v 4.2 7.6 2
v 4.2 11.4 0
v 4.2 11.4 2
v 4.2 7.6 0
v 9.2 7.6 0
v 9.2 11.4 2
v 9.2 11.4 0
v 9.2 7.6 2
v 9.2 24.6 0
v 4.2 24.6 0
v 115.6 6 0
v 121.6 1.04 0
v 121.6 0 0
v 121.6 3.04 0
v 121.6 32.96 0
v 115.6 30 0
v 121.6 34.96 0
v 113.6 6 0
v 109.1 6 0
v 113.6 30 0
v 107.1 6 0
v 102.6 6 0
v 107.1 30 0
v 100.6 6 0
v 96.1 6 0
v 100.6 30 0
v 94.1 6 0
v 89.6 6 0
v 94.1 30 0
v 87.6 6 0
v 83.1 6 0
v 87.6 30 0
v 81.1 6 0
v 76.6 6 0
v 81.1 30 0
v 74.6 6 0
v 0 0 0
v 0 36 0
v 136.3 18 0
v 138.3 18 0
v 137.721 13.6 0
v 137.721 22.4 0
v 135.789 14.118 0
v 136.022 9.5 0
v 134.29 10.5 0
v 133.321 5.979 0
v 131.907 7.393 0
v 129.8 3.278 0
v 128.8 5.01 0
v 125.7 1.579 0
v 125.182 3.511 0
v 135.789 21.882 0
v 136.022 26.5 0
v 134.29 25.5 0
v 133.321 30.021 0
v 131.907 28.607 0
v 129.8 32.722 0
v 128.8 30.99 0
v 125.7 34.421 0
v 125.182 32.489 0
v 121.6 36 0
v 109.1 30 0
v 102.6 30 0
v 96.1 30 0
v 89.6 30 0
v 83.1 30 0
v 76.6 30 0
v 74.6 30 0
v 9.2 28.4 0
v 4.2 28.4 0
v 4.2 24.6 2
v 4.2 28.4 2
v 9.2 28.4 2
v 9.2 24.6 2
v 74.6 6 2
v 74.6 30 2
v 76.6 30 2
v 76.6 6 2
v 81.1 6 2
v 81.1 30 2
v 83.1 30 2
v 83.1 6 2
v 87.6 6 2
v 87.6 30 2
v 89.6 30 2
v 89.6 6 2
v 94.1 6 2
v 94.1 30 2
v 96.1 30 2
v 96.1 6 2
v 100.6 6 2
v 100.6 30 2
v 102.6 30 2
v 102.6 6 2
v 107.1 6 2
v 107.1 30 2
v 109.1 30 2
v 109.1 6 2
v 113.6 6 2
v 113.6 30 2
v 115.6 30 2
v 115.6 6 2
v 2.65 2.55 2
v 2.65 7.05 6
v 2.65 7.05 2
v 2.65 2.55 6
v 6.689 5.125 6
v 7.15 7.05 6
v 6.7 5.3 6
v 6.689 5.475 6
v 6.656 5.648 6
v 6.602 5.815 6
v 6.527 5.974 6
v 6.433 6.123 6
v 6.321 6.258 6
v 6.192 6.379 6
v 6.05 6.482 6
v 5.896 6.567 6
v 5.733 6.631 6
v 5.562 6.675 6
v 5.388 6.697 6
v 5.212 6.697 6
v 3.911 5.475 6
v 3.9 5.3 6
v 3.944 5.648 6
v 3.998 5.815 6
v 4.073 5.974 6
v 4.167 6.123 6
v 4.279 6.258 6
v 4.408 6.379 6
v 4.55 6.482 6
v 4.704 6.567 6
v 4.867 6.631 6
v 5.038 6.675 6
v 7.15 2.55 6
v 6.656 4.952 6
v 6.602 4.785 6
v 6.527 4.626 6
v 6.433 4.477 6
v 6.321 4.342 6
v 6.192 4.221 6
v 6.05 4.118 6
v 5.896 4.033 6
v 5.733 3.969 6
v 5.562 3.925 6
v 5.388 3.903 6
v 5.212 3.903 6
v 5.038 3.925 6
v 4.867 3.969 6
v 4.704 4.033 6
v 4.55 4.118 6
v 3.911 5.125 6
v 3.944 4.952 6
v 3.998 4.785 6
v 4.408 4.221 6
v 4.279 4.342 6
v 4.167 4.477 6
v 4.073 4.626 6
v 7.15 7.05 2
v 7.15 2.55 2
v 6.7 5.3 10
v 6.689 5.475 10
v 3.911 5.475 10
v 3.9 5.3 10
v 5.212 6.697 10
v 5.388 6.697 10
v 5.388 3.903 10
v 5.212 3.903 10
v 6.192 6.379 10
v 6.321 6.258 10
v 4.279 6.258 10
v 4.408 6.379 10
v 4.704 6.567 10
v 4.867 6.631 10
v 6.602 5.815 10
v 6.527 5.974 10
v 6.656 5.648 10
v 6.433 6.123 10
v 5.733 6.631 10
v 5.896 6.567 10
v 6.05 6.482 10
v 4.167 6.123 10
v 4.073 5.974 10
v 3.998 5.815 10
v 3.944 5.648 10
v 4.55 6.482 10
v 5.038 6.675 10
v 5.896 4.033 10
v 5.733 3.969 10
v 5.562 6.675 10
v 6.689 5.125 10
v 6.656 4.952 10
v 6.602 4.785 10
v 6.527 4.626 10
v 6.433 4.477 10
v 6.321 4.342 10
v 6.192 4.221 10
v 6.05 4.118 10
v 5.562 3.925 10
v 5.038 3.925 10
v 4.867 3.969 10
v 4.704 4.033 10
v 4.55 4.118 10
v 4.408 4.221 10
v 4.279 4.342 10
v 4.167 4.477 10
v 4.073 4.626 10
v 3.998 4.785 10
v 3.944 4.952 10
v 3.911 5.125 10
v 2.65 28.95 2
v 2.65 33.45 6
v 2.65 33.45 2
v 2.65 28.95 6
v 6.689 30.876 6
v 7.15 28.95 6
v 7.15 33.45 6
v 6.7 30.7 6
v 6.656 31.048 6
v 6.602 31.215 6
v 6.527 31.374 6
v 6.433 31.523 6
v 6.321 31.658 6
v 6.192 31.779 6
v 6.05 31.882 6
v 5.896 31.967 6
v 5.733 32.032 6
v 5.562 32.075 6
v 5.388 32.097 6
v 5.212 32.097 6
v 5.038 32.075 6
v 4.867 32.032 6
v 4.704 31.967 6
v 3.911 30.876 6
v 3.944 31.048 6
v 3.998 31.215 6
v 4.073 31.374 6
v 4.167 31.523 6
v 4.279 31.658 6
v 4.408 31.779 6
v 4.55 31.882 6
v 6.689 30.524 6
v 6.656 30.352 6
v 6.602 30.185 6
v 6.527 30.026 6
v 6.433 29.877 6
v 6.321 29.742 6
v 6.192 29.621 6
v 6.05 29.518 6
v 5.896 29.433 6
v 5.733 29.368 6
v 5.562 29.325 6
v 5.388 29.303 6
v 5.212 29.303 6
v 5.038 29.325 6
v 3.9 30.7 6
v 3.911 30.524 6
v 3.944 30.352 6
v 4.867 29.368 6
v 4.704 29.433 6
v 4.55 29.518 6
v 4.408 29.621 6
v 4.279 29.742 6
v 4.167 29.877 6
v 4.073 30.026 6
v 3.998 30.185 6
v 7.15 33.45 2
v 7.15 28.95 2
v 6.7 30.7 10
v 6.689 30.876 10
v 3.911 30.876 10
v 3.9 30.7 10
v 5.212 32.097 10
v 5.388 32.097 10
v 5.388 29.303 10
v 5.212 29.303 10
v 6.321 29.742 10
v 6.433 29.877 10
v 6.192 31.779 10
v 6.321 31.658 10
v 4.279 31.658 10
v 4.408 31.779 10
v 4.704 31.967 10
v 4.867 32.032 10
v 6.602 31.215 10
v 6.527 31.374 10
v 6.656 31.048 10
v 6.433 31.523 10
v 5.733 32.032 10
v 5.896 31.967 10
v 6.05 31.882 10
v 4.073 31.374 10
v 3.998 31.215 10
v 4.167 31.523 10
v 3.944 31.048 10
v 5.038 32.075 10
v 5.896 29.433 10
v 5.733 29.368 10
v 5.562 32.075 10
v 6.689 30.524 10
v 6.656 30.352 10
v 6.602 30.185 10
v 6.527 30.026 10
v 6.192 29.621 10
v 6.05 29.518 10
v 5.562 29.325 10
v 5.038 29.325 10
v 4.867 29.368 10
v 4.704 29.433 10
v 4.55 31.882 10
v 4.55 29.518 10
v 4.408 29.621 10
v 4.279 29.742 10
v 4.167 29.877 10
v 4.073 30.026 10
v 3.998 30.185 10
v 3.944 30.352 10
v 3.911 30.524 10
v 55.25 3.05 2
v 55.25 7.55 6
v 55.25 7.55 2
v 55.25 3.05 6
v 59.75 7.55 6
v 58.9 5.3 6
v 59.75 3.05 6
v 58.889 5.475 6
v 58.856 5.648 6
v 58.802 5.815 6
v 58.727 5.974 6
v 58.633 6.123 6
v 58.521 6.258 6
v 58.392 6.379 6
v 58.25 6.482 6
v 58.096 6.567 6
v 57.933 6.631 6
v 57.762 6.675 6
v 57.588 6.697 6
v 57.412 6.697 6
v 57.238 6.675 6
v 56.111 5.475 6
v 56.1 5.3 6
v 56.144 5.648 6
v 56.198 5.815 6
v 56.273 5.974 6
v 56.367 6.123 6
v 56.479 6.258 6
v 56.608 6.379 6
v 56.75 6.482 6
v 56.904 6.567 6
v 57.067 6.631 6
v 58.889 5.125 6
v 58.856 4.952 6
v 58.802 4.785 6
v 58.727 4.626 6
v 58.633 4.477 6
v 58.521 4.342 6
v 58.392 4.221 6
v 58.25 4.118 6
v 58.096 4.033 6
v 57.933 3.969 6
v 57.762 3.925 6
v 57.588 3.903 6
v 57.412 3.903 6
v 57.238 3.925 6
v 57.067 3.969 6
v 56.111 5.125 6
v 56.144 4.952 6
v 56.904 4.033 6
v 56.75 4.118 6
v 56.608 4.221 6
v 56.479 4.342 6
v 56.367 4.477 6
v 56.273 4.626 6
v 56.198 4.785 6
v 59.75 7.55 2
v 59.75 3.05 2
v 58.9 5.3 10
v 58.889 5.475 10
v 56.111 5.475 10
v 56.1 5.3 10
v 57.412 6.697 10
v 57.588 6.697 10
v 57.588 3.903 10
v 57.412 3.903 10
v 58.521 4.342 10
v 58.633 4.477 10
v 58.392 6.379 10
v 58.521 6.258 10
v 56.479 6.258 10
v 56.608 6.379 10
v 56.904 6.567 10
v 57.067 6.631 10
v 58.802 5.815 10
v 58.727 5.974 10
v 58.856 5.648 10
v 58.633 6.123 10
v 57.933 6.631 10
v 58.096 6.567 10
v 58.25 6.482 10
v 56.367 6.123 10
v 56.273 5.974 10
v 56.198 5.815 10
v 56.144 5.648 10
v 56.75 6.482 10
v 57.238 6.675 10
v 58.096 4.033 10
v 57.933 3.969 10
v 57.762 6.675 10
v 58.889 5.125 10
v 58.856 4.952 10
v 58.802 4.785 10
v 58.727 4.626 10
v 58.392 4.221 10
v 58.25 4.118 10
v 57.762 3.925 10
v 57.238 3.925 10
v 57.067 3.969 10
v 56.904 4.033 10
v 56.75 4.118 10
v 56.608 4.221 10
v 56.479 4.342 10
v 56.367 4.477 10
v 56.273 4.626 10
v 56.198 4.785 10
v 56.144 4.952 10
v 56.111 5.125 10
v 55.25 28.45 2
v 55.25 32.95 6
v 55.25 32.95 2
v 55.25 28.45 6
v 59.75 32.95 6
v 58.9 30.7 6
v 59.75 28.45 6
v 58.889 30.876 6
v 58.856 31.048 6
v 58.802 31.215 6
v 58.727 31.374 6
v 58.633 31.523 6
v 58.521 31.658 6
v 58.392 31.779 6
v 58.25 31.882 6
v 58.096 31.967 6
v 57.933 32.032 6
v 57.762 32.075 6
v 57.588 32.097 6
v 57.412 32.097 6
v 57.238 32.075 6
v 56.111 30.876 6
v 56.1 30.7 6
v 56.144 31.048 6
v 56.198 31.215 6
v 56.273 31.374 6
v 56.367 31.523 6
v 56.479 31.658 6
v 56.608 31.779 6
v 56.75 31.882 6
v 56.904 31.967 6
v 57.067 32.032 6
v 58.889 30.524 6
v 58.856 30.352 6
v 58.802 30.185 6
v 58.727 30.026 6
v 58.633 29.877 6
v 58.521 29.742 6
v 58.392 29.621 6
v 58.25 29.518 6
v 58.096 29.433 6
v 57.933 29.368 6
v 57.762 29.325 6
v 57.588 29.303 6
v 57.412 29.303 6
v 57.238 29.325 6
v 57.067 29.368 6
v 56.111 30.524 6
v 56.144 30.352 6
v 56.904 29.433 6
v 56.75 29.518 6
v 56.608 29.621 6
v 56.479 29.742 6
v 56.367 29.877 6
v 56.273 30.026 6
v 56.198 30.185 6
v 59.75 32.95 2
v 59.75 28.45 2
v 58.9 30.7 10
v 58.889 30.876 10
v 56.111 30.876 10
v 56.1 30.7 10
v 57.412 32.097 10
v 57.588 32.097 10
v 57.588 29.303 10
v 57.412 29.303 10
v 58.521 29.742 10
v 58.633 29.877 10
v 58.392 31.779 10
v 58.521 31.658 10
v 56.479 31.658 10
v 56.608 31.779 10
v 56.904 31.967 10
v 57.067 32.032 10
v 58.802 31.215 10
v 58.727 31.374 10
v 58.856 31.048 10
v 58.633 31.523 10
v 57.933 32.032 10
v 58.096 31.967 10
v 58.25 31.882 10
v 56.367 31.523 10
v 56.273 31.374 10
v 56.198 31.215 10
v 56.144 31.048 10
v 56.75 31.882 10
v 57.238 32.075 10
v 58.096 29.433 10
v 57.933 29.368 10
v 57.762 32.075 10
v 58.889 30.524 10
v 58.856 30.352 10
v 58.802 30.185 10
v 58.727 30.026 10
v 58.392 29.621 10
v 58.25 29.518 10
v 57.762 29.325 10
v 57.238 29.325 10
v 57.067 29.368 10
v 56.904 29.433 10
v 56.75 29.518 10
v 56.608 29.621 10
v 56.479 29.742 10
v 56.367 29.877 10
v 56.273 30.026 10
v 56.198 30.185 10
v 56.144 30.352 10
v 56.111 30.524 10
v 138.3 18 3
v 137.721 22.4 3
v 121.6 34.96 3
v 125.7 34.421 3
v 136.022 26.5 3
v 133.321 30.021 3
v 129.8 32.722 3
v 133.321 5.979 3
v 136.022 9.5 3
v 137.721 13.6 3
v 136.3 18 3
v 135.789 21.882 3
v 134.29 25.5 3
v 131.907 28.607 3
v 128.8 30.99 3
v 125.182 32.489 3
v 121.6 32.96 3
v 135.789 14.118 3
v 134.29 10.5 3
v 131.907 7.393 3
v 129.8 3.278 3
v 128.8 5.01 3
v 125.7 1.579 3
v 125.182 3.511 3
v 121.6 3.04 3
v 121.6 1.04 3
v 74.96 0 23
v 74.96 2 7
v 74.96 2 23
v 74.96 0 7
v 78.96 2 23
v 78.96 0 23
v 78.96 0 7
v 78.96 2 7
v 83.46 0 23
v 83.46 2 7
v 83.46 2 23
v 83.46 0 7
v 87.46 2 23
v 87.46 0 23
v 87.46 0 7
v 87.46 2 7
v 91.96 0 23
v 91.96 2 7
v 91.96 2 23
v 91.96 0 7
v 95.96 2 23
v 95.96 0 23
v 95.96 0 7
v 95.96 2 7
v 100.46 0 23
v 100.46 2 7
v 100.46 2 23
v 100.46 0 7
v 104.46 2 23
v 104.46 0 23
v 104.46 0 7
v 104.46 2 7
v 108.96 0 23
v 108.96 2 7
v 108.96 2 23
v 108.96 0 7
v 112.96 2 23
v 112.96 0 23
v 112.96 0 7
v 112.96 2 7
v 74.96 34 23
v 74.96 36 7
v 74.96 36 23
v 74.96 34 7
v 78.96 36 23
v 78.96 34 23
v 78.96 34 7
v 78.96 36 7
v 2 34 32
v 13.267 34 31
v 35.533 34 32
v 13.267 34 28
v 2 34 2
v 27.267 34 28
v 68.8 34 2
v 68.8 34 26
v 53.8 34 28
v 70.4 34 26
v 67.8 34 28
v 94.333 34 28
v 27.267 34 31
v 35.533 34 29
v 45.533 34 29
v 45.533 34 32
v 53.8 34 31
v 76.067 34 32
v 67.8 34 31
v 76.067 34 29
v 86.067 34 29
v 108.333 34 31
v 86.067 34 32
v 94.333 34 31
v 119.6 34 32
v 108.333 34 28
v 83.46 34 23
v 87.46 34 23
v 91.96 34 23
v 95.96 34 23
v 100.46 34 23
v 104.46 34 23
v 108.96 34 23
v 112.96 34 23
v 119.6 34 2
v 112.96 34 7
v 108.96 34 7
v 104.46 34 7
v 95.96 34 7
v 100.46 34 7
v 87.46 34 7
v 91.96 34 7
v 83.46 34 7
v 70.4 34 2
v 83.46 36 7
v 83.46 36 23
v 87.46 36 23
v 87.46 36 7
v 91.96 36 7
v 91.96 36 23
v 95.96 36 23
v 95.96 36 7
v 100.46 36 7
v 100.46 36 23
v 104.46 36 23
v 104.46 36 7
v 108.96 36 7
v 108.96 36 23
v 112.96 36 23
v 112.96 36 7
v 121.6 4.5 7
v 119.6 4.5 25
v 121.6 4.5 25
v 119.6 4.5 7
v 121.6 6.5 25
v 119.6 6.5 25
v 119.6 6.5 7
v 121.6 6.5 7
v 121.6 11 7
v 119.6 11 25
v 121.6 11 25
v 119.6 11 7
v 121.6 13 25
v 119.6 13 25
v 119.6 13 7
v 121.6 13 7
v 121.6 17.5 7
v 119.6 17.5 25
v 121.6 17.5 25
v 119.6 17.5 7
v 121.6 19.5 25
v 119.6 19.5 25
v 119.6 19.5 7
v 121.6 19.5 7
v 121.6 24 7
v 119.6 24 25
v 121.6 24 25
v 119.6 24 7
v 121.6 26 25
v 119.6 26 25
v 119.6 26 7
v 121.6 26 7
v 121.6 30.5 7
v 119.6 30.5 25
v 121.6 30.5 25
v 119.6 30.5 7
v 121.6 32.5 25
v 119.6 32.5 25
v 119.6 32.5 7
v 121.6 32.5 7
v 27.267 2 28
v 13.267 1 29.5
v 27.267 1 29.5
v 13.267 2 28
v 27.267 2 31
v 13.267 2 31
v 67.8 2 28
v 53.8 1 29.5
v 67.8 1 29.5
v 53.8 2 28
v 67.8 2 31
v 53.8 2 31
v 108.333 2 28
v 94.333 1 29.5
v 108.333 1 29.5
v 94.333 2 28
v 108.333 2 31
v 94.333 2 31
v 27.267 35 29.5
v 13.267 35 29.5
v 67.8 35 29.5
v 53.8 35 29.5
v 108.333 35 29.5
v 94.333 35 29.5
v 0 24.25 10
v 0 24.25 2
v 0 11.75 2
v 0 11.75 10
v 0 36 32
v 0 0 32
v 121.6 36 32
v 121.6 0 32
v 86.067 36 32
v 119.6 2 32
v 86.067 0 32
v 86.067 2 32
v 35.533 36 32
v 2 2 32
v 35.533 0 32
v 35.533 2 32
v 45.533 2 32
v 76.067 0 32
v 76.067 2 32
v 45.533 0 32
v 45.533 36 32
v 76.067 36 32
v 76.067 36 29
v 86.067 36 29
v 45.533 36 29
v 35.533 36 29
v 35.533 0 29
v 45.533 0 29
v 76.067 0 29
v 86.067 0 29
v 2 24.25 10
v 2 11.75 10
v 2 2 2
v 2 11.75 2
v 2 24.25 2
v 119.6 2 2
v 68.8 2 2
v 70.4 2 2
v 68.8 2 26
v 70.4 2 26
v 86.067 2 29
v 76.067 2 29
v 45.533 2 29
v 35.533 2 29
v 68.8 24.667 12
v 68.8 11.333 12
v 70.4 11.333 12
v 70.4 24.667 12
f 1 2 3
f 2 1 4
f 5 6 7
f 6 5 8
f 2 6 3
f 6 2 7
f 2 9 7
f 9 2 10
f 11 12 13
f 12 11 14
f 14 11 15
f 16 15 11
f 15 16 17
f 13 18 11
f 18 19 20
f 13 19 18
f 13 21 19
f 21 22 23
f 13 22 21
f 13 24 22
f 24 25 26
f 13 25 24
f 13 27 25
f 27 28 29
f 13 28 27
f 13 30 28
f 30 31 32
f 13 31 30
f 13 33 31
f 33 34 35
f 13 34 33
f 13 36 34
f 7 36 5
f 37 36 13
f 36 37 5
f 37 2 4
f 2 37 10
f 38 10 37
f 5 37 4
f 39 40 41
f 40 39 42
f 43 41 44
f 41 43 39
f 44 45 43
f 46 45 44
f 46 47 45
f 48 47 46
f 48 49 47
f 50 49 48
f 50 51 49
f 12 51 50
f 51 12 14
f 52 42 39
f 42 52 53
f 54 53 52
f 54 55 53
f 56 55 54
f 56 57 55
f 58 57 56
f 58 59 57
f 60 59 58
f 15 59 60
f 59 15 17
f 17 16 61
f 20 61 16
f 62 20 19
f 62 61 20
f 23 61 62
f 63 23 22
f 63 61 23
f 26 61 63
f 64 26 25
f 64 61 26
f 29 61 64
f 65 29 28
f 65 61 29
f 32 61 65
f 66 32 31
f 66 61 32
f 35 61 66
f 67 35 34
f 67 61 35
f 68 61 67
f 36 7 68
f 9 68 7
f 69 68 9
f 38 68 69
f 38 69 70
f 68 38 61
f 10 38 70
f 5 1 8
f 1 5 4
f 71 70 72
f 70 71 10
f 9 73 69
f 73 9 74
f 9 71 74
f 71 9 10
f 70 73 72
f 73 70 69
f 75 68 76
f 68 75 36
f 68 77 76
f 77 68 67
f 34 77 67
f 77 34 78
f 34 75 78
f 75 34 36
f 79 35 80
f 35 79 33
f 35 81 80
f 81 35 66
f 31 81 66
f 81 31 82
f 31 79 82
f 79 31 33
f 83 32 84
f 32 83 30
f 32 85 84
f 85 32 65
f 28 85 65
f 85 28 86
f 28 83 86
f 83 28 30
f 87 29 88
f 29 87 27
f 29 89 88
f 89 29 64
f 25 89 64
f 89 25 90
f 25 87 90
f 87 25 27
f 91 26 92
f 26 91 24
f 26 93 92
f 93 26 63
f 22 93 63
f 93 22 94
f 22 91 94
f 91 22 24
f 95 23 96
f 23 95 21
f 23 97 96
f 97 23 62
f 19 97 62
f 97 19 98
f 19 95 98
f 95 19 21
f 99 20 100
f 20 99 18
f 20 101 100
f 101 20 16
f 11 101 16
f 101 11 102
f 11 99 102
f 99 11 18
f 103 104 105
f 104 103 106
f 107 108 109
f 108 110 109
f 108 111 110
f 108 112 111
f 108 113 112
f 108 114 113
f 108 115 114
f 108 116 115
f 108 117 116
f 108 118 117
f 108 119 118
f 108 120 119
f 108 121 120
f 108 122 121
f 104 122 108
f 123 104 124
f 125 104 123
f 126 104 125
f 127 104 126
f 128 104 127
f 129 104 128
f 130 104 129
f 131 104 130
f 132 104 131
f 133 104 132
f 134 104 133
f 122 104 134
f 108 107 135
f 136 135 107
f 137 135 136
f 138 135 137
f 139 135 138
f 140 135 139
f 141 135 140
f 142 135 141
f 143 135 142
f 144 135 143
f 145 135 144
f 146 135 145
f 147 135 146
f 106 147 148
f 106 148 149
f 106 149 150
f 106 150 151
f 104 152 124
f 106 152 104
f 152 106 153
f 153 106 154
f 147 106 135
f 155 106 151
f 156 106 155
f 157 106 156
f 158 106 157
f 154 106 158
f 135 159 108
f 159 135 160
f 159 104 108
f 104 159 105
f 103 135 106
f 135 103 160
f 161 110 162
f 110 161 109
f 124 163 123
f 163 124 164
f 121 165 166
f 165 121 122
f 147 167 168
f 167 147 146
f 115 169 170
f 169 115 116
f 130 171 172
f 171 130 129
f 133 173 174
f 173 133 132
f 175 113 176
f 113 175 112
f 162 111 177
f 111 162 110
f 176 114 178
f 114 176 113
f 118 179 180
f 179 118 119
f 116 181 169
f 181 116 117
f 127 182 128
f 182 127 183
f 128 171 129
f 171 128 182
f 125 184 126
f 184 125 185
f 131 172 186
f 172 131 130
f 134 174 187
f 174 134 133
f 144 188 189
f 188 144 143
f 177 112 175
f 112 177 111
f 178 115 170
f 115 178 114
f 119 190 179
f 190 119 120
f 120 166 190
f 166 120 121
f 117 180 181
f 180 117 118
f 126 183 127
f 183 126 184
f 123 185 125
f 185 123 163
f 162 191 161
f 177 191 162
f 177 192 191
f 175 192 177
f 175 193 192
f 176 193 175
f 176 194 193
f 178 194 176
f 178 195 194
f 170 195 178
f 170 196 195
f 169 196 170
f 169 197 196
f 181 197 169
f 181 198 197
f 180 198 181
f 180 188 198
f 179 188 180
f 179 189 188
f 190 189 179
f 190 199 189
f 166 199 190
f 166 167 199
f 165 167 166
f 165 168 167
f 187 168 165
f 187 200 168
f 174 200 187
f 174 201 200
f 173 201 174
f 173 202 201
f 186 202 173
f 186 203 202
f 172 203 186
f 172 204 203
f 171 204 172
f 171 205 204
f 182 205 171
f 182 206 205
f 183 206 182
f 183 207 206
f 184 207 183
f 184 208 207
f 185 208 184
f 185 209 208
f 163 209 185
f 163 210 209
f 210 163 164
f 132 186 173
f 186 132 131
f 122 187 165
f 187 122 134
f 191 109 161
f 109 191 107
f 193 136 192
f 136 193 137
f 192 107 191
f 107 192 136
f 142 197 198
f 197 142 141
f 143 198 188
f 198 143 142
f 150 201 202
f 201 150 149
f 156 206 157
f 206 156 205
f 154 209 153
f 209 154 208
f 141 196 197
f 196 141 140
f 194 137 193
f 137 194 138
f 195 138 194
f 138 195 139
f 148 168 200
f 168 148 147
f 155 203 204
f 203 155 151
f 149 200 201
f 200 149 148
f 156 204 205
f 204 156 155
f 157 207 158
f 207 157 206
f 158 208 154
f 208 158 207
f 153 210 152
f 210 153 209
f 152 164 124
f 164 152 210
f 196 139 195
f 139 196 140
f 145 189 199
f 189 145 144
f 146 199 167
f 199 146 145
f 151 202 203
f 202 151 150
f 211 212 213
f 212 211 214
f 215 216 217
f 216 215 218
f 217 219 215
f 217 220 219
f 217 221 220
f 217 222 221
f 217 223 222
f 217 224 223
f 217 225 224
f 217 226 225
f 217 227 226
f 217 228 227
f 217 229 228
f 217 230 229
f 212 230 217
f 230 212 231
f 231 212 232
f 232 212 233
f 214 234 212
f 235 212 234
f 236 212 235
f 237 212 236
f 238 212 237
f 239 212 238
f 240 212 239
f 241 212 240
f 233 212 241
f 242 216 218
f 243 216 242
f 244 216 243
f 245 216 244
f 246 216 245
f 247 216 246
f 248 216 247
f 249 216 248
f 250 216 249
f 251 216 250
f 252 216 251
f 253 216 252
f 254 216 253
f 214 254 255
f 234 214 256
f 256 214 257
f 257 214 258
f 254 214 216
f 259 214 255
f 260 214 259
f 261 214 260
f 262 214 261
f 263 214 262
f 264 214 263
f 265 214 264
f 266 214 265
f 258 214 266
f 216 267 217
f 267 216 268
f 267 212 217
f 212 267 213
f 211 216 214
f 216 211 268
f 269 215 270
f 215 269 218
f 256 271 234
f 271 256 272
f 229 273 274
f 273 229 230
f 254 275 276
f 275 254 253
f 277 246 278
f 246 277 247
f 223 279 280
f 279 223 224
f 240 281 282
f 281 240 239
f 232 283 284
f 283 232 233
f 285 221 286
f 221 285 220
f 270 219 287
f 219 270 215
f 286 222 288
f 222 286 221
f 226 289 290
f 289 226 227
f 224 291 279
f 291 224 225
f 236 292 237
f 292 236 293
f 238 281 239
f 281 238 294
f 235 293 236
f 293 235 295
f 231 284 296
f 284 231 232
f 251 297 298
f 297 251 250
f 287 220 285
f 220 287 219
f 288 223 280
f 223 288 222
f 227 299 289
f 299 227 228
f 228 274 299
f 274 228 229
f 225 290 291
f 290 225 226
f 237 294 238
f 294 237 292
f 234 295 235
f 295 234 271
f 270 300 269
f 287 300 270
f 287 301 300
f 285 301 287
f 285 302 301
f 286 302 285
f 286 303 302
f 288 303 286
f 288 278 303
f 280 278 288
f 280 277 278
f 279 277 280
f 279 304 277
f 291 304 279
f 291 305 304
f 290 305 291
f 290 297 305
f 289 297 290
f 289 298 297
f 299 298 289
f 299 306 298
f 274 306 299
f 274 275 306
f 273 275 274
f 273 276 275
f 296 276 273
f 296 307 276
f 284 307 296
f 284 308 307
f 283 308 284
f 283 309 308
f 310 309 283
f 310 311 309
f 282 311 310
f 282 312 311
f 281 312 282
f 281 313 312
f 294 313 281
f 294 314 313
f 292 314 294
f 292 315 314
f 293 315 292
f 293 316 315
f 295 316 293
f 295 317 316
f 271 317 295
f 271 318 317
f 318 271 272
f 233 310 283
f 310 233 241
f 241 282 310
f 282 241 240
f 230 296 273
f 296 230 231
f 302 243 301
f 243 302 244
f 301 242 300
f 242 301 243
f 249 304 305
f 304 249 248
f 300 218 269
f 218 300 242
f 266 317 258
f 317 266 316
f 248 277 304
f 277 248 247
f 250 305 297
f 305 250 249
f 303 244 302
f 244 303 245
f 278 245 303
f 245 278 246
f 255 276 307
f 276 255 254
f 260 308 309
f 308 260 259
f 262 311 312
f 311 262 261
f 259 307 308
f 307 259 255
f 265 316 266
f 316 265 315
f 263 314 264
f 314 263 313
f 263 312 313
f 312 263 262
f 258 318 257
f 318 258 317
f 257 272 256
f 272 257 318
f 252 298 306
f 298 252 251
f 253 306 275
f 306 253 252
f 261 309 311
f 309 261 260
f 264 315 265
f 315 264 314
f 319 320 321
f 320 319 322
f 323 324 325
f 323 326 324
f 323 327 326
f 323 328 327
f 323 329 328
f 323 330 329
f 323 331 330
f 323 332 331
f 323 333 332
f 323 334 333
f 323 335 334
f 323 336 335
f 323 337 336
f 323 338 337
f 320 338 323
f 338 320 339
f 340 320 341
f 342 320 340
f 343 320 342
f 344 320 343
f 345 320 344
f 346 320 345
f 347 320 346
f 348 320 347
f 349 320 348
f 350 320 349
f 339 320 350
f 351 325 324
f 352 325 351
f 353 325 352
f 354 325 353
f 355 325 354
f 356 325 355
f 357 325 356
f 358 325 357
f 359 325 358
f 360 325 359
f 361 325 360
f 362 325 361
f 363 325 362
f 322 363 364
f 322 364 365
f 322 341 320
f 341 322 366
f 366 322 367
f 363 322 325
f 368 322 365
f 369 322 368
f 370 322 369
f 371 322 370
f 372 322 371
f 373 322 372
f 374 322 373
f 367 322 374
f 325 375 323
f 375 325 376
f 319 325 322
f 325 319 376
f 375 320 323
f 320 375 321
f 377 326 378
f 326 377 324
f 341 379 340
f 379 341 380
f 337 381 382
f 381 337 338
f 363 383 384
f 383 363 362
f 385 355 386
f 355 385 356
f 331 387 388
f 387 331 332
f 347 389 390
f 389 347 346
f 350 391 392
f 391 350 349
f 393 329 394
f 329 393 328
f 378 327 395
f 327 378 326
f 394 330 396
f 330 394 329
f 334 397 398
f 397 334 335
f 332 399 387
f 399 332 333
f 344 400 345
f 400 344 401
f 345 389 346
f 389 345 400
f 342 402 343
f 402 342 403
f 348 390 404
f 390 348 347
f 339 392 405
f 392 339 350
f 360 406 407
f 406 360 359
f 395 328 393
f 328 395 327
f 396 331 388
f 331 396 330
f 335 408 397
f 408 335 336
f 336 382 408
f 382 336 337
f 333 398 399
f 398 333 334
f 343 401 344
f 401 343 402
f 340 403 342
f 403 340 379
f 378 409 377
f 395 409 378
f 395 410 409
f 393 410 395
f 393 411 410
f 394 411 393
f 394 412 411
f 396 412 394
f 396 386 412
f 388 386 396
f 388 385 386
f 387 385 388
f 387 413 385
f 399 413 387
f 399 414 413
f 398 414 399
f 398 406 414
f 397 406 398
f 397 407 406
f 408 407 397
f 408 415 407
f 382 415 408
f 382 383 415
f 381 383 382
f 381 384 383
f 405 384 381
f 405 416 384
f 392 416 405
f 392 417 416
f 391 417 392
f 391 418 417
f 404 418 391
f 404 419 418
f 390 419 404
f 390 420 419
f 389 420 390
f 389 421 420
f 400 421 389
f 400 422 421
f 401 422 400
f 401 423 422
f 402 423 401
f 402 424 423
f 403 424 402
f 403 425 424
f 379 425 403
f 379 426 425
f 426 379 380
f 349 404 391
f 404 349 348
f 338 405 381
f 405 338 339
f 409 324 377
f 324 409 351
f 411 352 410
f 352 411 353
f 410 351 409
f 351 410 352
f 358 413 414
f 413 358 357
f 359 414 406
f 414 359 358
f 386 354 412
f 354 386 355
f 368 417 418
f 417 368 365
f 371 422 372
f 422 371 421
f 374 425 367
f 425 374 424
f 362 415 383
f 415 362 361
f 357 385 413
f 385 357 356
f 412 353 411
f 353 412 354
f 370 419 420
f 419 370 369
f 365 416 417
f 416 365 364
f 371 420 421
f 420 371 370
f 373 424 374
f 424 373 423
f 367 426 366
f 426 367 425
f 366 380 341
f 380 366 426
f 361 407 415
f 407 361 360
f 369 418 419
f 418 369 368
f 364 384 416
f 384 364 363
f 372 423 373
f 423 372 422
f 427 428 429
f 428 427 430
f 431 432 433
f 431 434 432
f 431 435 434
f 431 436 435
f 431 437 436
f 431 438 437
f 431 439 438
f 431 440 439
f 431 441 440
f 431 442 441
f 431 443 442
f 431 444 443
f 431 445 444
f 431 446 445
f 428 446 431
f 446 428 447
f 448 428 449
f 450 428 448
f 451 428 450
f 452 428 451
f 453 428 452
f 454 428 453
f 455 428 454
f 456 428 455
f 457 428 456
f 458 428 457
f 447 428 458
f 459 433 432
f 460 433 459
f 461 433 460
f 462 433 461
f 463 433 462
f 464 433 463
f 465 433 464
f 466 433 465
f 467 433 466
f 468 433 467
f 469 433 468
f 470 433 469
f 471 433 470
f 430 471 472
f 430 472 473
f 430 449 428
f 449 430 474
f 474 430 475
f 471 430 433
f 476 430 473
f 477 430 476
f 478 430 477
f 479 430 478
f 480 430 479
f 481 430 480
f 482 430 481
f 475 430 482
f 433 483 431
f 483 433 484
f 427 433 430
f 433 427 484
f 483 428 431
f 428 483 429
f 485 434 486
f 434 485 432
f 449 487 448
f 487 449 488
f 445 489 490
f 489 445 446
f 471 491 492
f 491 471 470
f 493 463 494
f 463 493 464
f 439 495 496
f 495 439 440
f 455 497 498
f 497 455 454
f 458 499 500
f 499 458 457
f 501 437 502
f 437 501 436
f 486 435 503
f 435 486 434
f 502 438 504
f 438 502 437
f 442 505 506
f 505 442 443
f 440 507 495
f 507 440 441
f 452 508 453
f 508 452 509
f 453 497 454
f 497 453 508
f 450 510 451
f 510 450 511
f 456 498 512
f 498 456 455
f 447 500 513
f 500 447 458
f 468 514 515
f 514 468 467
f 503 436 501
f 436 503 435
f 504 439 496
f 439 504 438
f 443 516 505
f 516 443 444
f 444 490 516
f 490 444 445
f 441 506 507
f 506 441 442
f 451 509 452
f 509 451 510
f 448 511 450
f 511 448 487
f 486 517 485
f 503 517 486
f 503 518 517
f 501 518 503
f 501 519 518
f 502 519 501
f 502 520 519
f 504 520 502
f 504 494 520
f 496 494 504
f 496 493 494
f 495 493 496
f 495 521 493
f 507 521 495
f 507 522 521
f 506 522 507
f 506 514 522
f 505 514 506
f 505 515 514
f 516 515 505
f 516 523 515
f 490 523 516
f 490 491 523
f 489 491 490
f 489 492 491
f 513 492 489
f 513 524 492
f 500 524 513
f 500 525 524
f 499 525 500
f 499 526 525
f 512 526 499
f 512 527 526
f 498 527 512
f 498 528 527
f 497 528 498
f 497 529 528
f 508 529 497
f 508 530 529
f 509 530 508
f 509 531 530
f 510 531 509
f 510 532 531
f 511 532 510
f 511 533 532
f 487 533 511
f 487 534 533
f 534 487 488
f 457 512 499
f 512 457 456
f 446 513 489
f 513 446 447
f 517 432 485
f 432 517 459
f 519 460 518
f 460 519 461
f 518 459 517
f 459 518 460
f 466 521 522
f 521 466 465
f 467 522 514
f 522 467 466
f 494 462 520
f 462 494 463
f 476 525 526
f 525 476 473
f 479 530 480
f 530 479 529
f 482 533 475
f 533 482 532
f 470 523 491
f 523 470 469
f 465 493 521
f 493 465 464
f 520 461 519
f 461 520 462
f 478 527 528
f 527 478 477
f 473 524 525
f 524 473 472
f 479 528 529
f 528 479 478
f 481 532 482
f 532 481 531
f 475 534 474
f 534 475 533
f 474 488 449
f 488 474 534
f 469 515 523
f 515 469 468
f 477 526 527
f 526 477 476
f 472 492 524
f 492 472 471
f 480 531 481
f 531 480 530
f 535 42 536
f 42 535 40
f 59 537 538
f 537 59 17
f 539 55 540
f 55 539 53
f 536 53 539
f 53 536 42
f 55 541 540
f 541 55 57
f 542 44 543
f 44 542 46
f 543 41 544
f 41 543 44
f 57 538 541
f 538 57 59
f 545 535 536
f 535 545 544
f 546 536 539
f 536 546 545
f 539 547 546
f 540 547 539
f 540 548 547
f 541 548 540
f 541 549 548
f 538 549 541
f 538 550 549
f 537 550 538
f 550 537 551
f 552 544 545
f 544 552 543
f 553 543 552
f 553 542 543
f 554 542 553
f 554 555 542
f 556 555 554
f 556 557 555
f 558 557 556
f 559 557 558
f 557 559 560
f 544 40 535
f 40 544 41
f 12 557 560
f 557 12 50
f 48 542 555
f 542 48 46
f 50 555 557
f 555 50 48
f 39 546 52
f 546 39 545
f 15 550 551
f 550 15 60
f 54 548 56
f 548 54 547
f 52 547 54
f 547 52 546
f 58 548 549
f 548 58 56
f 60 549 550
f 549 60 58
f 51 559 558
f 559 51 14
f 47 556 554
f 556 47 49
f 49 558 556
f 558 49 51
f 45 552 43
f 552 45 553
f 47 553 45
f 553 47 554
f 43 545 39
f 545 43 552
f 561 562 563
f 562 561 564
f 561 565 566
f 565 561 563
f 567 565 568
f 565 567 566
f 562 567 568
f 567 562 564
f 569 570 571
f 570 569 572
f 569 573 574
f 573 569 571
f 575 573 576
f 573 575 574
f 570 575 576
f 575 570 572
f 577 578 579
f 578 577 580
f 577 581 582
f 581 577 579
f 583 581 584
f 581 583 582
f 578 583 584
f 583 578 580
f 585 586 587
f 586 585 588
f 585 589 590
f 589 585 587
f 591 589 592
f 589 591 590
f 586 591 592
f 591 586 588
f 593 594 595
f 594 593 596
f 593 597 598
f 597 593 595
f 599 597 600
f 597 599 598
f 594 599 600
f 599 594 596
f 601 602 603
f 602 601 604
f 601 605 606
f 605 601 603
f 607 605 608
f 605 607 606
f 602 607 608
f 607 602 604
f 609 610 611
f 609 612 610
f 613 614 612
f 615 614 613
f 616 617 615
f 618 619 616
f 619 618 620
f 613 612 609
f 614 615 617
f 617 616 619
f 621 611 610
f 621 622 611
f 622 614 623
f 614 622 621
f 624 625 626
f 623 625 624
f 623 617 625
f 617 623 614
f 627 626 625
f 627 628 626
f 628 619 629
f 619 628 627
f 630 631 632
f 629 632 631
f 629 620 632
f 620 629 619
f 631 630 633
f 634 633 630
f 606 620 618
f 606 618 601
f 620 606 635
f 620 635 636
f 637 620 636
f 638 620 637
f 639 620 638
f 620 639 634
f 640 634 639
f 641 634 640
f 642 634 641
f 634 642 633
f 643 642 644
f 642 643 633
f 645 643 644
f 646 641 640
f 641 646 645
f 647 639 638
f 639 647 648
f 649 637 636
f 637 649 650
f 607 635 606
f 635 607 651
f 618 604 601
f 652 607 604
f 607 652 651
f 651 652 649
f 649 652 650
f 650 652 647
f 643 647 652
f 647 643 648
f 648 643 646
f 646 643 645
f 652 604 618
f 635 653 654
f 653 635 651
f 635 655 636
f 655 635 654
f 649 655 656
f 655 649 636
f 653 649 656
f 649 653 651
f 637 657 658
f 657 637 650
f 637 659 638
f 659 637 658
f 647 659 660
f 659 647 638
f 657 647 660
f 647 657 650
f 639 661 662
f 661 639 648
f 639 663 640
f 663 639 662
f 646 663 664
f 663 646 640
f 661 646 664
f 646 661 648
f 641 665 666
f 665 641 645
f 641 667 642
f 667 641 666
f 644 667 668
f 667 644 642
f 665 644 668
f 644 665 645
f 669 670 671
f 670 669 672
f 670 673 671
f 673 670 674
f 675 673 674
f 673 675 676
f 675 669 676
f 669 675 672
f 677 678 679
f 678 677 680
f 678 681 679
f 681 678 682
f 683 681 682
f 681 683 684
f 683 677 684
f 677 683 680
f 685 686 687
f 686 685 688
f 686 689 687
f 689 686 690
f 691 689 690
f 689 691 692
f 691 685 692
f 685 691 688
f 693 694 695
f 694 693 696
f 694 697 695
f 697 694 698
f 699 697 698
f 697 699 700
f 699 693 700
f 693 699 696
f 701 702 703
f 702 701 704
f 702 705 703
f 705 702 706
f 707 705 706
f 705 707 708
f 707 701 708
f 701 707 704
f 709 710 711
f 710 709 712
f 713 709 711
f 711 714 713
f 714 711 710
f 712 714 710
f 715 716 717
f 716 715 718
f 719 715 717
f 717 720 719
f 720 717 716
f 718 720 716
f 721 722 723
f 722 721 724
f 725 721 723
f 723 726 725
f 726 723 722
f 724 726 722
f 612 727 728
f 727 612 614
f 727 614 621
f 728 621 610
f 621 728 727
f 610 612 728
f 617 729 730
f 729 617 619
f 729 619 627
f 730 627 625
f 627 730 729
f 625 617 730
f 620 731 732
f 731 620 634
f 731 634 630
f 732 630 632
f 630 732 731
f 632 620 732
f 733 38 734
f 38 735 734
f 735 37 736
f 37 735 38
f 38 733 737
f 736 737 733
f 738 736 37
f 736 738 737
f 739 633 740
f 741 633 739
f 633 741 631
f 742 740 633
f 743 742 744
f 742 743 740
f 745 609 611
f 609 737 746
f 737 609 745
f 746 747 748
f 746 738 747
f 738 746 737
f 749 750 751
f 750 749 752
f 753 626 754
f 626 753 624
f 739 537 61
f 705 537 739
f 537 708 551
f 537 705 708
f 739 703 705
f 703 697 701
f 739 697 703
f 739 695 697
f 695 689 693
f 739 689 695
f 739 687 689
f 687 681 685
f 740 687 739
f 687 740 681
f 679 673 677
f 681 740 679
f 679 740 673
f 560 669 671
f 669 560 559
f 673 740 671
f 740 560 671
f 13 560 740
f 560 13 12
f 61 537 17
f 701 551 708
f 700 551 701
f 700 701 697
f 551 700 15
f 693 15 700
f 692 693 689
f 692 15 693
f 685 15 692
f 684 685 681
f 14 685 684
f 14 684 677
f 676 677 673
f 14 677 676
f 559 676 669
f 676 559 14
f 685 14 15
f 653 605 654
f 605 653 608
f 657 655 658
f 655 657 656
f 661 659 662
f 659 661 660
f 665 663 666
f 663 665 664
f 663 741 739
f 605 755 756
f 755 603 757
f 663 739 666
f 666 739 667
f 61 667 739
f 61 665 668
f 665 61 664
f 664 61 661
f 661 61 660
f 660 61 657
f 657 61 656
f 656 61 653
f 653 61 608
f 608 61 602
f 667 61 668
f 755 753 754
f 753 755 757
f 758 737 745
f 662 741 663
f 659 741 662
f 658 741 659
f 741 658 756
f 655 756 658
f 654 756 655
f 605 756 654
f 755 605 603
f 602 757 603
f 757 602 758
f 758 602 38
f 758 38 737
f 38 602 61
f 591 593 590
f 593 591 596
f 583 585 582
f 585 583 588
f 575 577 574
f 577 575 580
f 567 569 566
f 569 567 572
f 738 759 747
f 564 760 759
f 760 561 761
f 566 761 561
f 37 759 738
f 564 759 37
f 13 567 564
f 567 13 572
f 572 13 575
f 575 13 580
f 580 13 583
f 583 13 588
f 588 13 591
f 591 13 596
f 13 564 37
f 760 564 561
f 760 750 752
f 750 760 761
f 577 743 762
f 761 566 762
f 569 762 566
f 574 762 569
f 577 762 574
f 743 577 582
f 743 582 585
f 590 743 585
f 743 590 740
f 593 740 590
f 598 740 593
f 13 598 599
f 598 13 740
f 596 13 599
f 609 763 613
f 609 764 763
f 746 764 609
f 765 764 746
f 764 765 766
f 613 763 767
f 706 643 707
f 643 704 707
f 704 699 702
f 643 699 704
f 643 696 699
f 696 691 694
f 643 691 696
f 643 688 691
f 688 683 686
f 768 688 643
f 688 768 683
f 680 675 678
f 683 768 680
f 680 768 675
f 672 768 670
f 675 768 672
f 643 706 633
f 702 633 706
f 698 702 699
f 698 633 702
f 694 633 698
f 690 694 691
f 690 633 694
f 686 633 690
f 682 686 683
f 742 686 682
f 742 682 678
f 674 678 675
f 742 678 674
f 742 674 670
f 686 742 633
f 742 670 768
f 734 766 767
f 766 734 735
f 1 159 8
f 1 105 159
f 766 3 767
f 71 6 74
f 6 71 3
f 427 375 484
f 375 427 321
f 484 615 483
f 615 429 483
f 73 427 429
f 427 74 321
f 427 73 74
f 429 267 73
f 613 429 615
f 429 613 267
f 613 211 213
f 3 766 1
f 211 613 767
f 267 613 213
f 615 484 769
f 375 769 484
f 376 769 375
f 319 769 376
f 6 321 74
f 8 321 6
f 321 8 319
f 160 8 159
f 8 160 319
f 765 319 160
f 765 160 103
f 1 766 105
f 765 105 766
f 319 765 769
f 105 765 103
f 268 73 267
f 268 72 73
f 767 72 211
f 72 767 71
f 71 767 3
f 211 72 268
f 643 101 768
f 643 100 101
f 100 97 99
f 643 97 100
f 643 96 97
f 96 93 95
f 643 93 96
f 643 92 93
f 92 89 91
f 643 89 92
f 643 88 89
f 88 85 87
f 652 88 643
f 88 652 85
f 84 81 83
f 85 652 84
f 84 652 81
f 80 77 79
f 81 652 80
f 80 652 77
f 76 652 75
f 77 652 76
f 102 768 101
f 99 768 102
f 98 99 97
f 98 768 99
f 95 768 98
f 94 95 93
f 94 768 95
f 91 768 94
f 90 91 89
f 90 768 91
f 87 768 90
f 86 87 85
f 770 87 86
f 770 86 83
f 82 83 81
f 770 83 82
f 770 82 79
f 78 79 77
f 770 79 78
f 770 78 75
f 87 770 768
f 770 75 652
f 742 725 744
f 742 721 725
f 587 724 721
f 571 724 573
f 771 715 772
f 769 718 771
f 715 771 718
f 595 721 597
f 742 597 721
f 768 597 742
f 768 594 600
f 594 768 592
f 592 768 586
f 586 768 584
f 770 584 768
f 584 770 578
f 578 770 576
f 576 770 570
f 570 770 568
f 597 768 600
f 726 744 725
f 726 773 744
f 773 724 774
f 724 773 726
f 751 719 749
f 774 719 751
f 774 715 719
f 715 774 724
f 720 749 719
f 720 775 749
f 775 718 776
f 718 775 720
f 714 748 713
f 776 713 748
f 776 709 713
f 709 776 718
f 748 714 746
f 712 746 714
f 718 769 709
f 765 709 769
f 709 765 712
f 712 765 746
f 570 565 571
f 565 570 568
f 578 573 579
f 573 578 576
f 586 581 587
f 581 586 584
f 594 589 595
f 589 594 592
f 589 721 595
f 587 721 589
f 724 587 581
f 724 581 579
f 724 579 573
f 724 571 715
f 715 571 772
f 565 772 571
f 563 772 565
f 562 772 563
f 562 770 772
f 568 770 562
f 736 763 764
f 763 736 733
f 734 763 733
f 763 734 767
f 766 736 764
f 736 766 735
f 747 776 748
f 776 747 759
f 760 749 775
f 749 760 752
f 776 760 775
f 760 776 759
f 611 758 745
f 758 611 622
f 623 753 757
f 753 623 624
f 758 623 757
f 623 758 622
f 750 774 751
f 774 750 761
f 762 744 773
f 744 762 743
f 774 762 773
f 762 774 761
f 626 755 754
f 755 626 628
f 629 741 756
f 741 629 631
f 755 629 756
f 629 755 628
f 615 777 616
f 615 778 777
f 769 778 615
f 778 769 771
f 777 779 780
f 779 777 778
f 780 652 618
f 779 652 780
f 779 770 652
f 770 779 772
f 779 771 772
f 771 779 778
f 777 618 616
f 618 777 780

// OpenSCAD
// Case for NodeMCU v3 with enough vertical space to use dupont cables, and long enough to reduce ESP heat getting to temperature sensor


// 57.8mm for the board, doubled for sensor space
inner_length_param = 57.8;

inner_width_param = 31.0;

inner_height = 30;

// 4mm to allow for RF shield and soldered headers. Used to hold up the board by the edges
floor_to_pcb_margin = 4;
pcb_wall_margin = 0.5; //margin from the wall to the PCB edge - does result in USB port being slightly recessed

bottom_thickness = 2.0;

wall_thickness = 2.0;

inner_wall_thickness = 1.6;
inner_wall_height = 10;

//Height with margin for cable
usb_height = 7.5;

//Width with margin for cable
usb_width = 12.5;


//Corner posts
corner_post_protrusion_height = 4;
//corner_post_outer_radius = 3;
corner_post_inner_radius = 1.4;
corner_post_pcb_radius = 1.5; //M3 hole?
//used for center of support/holding posts
//edge of protruding post from x wall
corner_post_x_from_wall = 1.3;
//edge of protruding post from y wall
corner_post_y_from_wall = 1.3;


//Snapfit hole values
//snapfit_hole_width = 12;
//snapfit_hole_thickness = 6;
//snapfit_hole_height = 3;
//snapfit_hole_offset = 4; //4mm from top

//Values for snap fit mechanism
triangle_mount_base = 3;
triangle_mount_length = 14;
triangle_mount_dist_from_top = 1;


//CALCULATED VALUES
//add margin so board is not pressed tight
inner_length = inner_length_param + pcb_wall_margin*2;
inner_width = inner_width_param + pcb_wall_margin*2;

//add wall thickness
inner_length_full = inner_length*2;
length_full = inner_length_full+wall_thickness*2;

width_full = inner_width+wall_thickness*2;

height_full = bottom_thickness+inner_height;

// overall case
translate([0, 0, 0]) union()
{
    //generate empty box with cutouts
    difference()
    {
        cube([length_full, width_full, height_full], 0);
        
        // main cutout
        translate([wall_thickness, wall_thickness, bottom_thickness]) cube([inner_length_full, inner_width, inner_height+1]);
        
        // USB cutout, placed in the center starting at floor height
        translate([-0.5, width_full/2 - usb_width/2, bottom_thickness]) cube([wall_thickness*3,  usb_width, usb_height+0.5]);
        
        //button holes
        generate_button_holes();
        
        //vent holes
        generate_rectangular_vent_holes();
        
        //inner snap fit holes
        translate([0,0,height_full-triangle_mount_dist_from_top-triangle_mount_base]) generate_snapfit_holes(3, triangle_mount_length);
    translate([0,width_full,height_full-triangle_mount_dist_from_top-triangle_mount_base]) mirror([0,1,0]) generate_snapfit_holes(3, triangle_mount_length);
        
        //holes for more easily removing the snapfit lid
        translate([length_full/6*2 - 5,0,height_full-3]) cube([10, wall_thickness*2,3]);    
        translate([length_full/6*2 - 5,width_full-wall_thickness,height_full-3]) cube([10, wall_thickness*2, 3]);
        translate([length_full/6*4 - 5,0,height_full-3]) cube([10, wall_thickness*2,3]);    
        translate([length_full/6*4 - 5,width_full-wall_thickness,height_full-3]) cube([10, wall_thickness*2, 3]);
        
        
    }
   
    
    //corner posts
    generate_posts();
    
    //wall seperating nodemcu and sensor areas
    generate_inner_wall();
    
    //hook
    translate([length_full-0.3, width_full/2, 0]) generate_hook();
    
}



//larger radius, smaller radius, transition height, total height
module retaining_cylinder(r, h)
{
    $fn = 50;
    //cylinder(trh, ro, ro, false); 
    //translate([-ro, -ro, 0]) cube([ro*2, ro*2, trh]);
    cylinder(h, r, r, false);
}

//square support ledge
module support_ledge()
{
    //doubled to get diameter, and then +50% to get a suitable overhang
    edge_length = 2*corner_post_pcb_radius*1.5;
    //echo("edge_length of support: ");
    //echo(edge_length);
    //translated so it is centered with the cylinder
    translate([-edge_length/2, -edge_length/2, 0]) cube([edge_length, edge_length, bottom_thickness+floor_to_pcb_margin]);
}

module corner_post()
{
   // support_post(corner_post_outer_radius, corner_post_inner_radius, bottom_thickness+floor_to_pcb_margin, bottom_thickness+floor_to_pcb_margin+5);
    retaining_cylinder(corner_post_inner_radius, bottom_thickness+floor_to_pcb_margin+corner_post_protrusion_height);
}

module generate_posts()
{   
 //offset from y axis and PCB hole to hole distance
 x_offset = wall_thickness + corner_post_x_from_wall + corner_post_pcb_radius + pcb_wall_margin;
 y_offset = corner_post_pcb_radius + wall_thickness + corner_post_y_from_wall + pcb_wall_margin;
 x_cross = inner_length - 2*corner_post_x_from_wall - 2*corner_post_pcb_radius - 2*pcb_wall_margin;
 y_cross = inner_width - 2*corner_post_y_from_wall - 2*corner_post_pcb_radius - 2*pcb_wall_margin;
    
    
//The bottom square supports are shifted to nestle them in the corner
//bottom right
 translate([x_offset, y_offset, 0]) union()
 {
    translate([-0.4, -0.5, 0]) support_ledge();
    corner_post();
 }
    
//bottom left
 translate([x_offset, y_offset+y_cross, 0]) union()
 {
    translate([-0.4, 0.5, 0]) support_ledge();
    corner_post();   
 }

//top right
 translate([x_offset + x_cross, y_offset, 0]) union()
 {
    support_ledge();
    corner_post();    
 }

//top left
 translate([x_offset + x_cross, y_offset + y_cross, 0]) union()
 {
    support_ledge();
    corner_post();      
 }

}

module generate_inner_wall()
{
   triangle_length = inner_width / 3;
   triangle_height = height_full - triangle_mount_dist_from_top - triangle_mount_base - inner_wall_height - bottom_thickness;
    
   translate([inner_length+10, wall_thickness, 0]) union()
   {   
    //lower rectangular portion 
    cube([inner_wall_thickness, inner_width+0.4, inner_wall_height+bottom_thickness]);
       
    //triangular support on left and  right
    //y axis wall
    translate([inner_wall_thickness, triangle_length, inner_wall_height]) rotate([0, 0, 180]) prism(inner_wall_thickness, triangle_length, triangle_height);
       
    //far y wall
    translate([0, inner_width-triangle_length, inner_wall_height]) rotate([0, 0, 0]) prism(inner_wall_thickness, triangle_length, triangle_height);
       
   }
}

//6 1cm holes, 3 on each side
//module generate_snapfit_holes()
//{
//    
//    hole_width = snapfit_hole_width;
//    hole_thickness = snapfit_hole_thickness;
//    hole_height = snapfit_hole_height;
//    hole_offset = snapfit_hole_offset;
//    
//    //put holes at 10, 45, 90%
//    hole_y_offset = -1*hole_thickness/2;
//    base_x_offset = wall_thickness + 0.10*inner_length_full;
//    
//    hole_z_offset = height_full - hole_height - hole_offset; //4mm from top
//    
//    //along y axis
//    gen_hole_line();
//    //along far y wall
//    translate([0, width_full, 0]) gen_hole_line();
//    
//    
//    module gen_hole_line()
//    {
//        translate([base_x_offset, hole_y_offset, hole_z_offset]) cube([hole_width, hole_thickness, hole_height]); 
//        translate([base_x_offset + inner_length_full*0.35, hole_y_offset, hole_z_offset]) cube([hole_width, hole_thickness, hole_height]);
//        translate([base_x_offset + inner_length_full*0.7, hole_y_offset, hole_z_offset]) cube([hole_width, hole_thickness, hole_height]);
//    }
//    
//}

module generate_button_holes()
{
    button_hole_x = 5;
    button_hole_y = 3.8;
    
    //distance from PCB edge to button along width
    button_distance_from_edge_y = 5.6;
    button_distance_from_edge_x = 2.2;
    
    //RST button
    //subtract half of cube width to center it
    translate([wall_thickness+button_distance_from_edge_x, wall_thickness + button_distance_from_edge_y, 0]) cube([button_hole_x, button_hole_y, bottom_thickness*1.5]);
    
    //Flash button
    translate([wall_thickness+button_distance_from_edge_x, width_full-wall_thickness-button_distance_from_edge_y - button_hole_y, 0]) cube([button_hole_x, button_hole_y, bottom_thickness*1.5]);
    
}

module generate_rectangular_vent_holes()
{
    //closer wall
    translate([length_full * 3/5 + 2, -2 , bottom_thickness+5]) generate_vent_line(5, 16, 4, 5, 4.5);
    
    //far wall
    translate([length_full * 3/5 + 2, width_full-2, bottom_thickness+5]) generate_vent_line(5, 16, 4, 5, 4.5);
    
    //far wall
    translate([length_full+2, (width_full - total_vent_line_length(6, 2, 3))/2, bottom_thickness+5]) rotate([0,0,90]) generate_vent_line(6, 18, 2, 5, 4.5);
    
    //bottom of sensor bay
    translate([length_full - total_vent_line_length(8, 2, 3) - 10, (width_full-24)/2, bottom_thickness+1]) rotate([-90,0,0]) generate_vent_line(7, 24, 2, 5, 4.5);
    
    
    module generate_vent_line(count, height, width, thickness, spacing)
    {
        function xpos(n,wi,sp) = n*wi + n*sp;
        
        //generate the specified size holes at the given spacing
        for(i = [0:1:count-1])
        {            
            //echo("xpos:");
            //echo(xpos(i,width,spacing));
            translate([xpos(i,width,spacing), 0, 0]) gen_hole();  
        }
        
        module gen_hole()
        {
            cube([width, thickness, height]);
        }
    }
    
    //calculate total length from the left of the first vent hole to the right of the last
    function total_vent_line_length(count, width, spacing) = 
       count*(width+spacing) - spacing;
    
}

//put hook at sensor end
module generate_hook()
{
    hook_outer_radius = 17;
    hook_inner_radius = 15;
    hook_height = 3;
    
    difference()
    {
        cylinder(hook_height, hook_outer_radius, hook_outer_radius, $fn=24);
        
        cylinder(hook_height, hook_inner_radius, hook_inner_radius, $fn=24);
        translate([-2*hook_outer_radius, -hook_outer_radius, 0]) cube([hook_outer_radius*2, hook_outer_radius*2, hook_height]);
        
    }
}

module generate_snapfit_holes(count, length)
{
    interval = length_full / 2 / count;
    
    //left side
    for(i = [0:count-1])
    {
        translate([2*i*interval + interval, width_full/2, 0]) snapfit_hole();
    }
    
    module snapfit_hole()
    {
        
        translate([0,-width_full/2+wall_thickness, 0]) triangle_mount(triangle_mount_base, wall_thickness/2, length);
    }
    
}

//from https://en.wikibooks.org/wiki/OpenSCAD_User_Manual/Primitive_Solids#polyhedron
//makes 3D triangles
module prism(l, w, h){
   polyhedron(
           points=[[0,0,0], [l,0,0], [l,w,0], [0,w,0], [0,w,h], [l,w,h]],
           faces=[[0,1,2,3],[5,4,3,2],[0,4,5,1],[0,3,4],[5,2,1]]
           );
  
   }
   
   
//from https://en.wikibooks.org/wiki/OpenSCAD_User_Manual/Primitive_Solids#polyhedron
//makes 3D triangles
module prism_isos(l, w, h){
   polyhedron(
           points=[[0,0,0], [l,0,0], [l,w,0], [0,w,0], [0,w/2,h], [l,w/2,h]],
           faces=[[0,1,2,3],[5,4,3,2],[0,4,5,1],[0,3,4],[5,2,1]]
           );
  
}

module triangle_mount(base, height, length)
{
    translate([-length/2,0,base/2]) rotate([90,0,0]) union(){
        //triangle portion
        //rotate([90,0,-90]) 
        translate([0,-base/2,0]) prism_isos(length,base,height);
        
        //rectangular support
        //rotate([0,90,0])
        //translate([-length/2,0,base]) 
        translate([length/2,0,-base/2]) cube([length,base,base], center=true);
    }
}
